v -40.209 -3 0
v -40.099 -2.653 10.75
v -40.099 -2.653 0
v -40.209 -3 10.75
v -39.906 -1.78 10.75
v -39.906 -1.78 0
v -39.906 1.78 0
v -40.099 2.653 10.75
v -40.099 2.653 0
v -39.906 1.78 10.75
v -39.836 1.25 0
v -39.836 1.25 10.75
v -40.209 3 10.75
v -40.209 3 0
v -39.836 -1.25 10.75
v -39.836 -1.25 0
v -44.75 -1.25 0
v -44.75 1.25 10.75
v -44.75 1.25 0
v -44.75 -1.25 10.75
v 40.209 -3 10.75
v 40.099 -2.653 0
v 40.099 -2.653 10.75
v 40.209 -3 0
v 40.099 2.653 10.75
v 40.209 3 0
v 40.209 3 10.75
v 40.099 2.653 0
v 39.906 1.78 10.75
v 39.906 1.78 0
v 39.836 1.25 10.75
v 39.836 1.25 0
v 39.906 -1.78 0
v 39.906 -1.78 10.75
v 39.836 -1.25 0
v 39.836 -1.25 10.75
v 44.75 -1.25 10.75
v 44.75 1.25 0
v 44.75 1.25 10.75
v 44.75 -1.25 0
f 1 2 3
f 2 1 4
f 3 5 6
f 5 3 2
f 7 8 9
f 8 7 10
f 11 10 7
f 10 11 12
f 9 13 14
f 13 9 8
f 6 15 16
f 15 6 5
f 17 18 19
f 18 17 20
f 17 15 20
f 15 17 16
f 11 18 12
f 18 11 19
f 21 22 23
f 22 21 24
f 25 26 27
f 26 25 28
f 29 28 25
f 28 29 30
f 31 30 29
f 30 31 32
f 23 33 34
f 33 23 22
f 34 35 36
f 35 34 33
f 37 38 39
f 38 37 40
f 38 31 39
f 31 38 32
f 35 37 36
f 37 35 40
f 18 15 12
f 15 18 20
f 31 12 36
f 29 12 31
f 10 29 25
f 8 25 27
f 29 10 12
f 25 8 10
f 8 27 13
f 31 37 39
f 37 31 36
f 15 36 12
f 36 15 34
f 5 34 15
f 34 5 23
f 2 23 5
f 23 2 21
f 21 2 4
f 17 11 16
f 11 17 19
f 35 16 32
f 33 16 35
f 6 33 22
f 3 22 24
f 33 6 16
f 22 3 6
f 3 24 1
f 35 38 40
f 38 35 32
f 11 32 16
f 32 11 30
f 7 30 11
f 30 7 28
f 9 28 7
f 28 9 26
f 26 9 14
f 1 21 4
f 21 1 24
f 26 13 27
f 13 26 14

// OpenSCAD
translate([0, 0, (10.75)/2]){
	scale([1.000, 1.000, 10.750]){
	difference(){
	rotate(0.00,[0,0,1]){
	cube([100.00,6.00,1.00], true);
}	translate([-50.00, -0.00, -7.50]){
	translate([0.00, 0.00, 9.50]){
	scale([1.000, 1.000, 11.000]){
	difference(){
	translate([0.00, 0.00, 0.00]){
	cylinder(h = 1.000, r = 10.250, center = true, $fa = 5, $fs = 0.01);
}	rotate(0.00,[0,0,1]){
	translate([10.25, 0.00, 0.00]){
	cube([10.00,2.50,4.00], true);
}}	rotate(90.00,[0,0,1]){
	translate([10.25, 0.00, 0.00]){
	cube([10.00,2.50,4.00], true);
}}}}}}	translate([50.00, 0.00, -7.50]){
	translate([0.00, 0.00, 9.50]){
	scale([1.000, 1.000, 11.000]){
	difference(){
	translate([0.00, 0.00, 0.00]){
	cylinder(h = 1.000, r = 10.250, center = true, $fa = 5, $fs = 0.01);
}	rotate(90.00,[0,0,1]){
	translate([10.25, 0.00, 0.00]){
	cube([10.00,2.50,4.00], true);
}}	rotate(180.00,[0,0,1]){
	translate([10.25, 0.00, 0.00]){
	cube([10.00,2.50,4.00], true);
}}}}}}}}}
